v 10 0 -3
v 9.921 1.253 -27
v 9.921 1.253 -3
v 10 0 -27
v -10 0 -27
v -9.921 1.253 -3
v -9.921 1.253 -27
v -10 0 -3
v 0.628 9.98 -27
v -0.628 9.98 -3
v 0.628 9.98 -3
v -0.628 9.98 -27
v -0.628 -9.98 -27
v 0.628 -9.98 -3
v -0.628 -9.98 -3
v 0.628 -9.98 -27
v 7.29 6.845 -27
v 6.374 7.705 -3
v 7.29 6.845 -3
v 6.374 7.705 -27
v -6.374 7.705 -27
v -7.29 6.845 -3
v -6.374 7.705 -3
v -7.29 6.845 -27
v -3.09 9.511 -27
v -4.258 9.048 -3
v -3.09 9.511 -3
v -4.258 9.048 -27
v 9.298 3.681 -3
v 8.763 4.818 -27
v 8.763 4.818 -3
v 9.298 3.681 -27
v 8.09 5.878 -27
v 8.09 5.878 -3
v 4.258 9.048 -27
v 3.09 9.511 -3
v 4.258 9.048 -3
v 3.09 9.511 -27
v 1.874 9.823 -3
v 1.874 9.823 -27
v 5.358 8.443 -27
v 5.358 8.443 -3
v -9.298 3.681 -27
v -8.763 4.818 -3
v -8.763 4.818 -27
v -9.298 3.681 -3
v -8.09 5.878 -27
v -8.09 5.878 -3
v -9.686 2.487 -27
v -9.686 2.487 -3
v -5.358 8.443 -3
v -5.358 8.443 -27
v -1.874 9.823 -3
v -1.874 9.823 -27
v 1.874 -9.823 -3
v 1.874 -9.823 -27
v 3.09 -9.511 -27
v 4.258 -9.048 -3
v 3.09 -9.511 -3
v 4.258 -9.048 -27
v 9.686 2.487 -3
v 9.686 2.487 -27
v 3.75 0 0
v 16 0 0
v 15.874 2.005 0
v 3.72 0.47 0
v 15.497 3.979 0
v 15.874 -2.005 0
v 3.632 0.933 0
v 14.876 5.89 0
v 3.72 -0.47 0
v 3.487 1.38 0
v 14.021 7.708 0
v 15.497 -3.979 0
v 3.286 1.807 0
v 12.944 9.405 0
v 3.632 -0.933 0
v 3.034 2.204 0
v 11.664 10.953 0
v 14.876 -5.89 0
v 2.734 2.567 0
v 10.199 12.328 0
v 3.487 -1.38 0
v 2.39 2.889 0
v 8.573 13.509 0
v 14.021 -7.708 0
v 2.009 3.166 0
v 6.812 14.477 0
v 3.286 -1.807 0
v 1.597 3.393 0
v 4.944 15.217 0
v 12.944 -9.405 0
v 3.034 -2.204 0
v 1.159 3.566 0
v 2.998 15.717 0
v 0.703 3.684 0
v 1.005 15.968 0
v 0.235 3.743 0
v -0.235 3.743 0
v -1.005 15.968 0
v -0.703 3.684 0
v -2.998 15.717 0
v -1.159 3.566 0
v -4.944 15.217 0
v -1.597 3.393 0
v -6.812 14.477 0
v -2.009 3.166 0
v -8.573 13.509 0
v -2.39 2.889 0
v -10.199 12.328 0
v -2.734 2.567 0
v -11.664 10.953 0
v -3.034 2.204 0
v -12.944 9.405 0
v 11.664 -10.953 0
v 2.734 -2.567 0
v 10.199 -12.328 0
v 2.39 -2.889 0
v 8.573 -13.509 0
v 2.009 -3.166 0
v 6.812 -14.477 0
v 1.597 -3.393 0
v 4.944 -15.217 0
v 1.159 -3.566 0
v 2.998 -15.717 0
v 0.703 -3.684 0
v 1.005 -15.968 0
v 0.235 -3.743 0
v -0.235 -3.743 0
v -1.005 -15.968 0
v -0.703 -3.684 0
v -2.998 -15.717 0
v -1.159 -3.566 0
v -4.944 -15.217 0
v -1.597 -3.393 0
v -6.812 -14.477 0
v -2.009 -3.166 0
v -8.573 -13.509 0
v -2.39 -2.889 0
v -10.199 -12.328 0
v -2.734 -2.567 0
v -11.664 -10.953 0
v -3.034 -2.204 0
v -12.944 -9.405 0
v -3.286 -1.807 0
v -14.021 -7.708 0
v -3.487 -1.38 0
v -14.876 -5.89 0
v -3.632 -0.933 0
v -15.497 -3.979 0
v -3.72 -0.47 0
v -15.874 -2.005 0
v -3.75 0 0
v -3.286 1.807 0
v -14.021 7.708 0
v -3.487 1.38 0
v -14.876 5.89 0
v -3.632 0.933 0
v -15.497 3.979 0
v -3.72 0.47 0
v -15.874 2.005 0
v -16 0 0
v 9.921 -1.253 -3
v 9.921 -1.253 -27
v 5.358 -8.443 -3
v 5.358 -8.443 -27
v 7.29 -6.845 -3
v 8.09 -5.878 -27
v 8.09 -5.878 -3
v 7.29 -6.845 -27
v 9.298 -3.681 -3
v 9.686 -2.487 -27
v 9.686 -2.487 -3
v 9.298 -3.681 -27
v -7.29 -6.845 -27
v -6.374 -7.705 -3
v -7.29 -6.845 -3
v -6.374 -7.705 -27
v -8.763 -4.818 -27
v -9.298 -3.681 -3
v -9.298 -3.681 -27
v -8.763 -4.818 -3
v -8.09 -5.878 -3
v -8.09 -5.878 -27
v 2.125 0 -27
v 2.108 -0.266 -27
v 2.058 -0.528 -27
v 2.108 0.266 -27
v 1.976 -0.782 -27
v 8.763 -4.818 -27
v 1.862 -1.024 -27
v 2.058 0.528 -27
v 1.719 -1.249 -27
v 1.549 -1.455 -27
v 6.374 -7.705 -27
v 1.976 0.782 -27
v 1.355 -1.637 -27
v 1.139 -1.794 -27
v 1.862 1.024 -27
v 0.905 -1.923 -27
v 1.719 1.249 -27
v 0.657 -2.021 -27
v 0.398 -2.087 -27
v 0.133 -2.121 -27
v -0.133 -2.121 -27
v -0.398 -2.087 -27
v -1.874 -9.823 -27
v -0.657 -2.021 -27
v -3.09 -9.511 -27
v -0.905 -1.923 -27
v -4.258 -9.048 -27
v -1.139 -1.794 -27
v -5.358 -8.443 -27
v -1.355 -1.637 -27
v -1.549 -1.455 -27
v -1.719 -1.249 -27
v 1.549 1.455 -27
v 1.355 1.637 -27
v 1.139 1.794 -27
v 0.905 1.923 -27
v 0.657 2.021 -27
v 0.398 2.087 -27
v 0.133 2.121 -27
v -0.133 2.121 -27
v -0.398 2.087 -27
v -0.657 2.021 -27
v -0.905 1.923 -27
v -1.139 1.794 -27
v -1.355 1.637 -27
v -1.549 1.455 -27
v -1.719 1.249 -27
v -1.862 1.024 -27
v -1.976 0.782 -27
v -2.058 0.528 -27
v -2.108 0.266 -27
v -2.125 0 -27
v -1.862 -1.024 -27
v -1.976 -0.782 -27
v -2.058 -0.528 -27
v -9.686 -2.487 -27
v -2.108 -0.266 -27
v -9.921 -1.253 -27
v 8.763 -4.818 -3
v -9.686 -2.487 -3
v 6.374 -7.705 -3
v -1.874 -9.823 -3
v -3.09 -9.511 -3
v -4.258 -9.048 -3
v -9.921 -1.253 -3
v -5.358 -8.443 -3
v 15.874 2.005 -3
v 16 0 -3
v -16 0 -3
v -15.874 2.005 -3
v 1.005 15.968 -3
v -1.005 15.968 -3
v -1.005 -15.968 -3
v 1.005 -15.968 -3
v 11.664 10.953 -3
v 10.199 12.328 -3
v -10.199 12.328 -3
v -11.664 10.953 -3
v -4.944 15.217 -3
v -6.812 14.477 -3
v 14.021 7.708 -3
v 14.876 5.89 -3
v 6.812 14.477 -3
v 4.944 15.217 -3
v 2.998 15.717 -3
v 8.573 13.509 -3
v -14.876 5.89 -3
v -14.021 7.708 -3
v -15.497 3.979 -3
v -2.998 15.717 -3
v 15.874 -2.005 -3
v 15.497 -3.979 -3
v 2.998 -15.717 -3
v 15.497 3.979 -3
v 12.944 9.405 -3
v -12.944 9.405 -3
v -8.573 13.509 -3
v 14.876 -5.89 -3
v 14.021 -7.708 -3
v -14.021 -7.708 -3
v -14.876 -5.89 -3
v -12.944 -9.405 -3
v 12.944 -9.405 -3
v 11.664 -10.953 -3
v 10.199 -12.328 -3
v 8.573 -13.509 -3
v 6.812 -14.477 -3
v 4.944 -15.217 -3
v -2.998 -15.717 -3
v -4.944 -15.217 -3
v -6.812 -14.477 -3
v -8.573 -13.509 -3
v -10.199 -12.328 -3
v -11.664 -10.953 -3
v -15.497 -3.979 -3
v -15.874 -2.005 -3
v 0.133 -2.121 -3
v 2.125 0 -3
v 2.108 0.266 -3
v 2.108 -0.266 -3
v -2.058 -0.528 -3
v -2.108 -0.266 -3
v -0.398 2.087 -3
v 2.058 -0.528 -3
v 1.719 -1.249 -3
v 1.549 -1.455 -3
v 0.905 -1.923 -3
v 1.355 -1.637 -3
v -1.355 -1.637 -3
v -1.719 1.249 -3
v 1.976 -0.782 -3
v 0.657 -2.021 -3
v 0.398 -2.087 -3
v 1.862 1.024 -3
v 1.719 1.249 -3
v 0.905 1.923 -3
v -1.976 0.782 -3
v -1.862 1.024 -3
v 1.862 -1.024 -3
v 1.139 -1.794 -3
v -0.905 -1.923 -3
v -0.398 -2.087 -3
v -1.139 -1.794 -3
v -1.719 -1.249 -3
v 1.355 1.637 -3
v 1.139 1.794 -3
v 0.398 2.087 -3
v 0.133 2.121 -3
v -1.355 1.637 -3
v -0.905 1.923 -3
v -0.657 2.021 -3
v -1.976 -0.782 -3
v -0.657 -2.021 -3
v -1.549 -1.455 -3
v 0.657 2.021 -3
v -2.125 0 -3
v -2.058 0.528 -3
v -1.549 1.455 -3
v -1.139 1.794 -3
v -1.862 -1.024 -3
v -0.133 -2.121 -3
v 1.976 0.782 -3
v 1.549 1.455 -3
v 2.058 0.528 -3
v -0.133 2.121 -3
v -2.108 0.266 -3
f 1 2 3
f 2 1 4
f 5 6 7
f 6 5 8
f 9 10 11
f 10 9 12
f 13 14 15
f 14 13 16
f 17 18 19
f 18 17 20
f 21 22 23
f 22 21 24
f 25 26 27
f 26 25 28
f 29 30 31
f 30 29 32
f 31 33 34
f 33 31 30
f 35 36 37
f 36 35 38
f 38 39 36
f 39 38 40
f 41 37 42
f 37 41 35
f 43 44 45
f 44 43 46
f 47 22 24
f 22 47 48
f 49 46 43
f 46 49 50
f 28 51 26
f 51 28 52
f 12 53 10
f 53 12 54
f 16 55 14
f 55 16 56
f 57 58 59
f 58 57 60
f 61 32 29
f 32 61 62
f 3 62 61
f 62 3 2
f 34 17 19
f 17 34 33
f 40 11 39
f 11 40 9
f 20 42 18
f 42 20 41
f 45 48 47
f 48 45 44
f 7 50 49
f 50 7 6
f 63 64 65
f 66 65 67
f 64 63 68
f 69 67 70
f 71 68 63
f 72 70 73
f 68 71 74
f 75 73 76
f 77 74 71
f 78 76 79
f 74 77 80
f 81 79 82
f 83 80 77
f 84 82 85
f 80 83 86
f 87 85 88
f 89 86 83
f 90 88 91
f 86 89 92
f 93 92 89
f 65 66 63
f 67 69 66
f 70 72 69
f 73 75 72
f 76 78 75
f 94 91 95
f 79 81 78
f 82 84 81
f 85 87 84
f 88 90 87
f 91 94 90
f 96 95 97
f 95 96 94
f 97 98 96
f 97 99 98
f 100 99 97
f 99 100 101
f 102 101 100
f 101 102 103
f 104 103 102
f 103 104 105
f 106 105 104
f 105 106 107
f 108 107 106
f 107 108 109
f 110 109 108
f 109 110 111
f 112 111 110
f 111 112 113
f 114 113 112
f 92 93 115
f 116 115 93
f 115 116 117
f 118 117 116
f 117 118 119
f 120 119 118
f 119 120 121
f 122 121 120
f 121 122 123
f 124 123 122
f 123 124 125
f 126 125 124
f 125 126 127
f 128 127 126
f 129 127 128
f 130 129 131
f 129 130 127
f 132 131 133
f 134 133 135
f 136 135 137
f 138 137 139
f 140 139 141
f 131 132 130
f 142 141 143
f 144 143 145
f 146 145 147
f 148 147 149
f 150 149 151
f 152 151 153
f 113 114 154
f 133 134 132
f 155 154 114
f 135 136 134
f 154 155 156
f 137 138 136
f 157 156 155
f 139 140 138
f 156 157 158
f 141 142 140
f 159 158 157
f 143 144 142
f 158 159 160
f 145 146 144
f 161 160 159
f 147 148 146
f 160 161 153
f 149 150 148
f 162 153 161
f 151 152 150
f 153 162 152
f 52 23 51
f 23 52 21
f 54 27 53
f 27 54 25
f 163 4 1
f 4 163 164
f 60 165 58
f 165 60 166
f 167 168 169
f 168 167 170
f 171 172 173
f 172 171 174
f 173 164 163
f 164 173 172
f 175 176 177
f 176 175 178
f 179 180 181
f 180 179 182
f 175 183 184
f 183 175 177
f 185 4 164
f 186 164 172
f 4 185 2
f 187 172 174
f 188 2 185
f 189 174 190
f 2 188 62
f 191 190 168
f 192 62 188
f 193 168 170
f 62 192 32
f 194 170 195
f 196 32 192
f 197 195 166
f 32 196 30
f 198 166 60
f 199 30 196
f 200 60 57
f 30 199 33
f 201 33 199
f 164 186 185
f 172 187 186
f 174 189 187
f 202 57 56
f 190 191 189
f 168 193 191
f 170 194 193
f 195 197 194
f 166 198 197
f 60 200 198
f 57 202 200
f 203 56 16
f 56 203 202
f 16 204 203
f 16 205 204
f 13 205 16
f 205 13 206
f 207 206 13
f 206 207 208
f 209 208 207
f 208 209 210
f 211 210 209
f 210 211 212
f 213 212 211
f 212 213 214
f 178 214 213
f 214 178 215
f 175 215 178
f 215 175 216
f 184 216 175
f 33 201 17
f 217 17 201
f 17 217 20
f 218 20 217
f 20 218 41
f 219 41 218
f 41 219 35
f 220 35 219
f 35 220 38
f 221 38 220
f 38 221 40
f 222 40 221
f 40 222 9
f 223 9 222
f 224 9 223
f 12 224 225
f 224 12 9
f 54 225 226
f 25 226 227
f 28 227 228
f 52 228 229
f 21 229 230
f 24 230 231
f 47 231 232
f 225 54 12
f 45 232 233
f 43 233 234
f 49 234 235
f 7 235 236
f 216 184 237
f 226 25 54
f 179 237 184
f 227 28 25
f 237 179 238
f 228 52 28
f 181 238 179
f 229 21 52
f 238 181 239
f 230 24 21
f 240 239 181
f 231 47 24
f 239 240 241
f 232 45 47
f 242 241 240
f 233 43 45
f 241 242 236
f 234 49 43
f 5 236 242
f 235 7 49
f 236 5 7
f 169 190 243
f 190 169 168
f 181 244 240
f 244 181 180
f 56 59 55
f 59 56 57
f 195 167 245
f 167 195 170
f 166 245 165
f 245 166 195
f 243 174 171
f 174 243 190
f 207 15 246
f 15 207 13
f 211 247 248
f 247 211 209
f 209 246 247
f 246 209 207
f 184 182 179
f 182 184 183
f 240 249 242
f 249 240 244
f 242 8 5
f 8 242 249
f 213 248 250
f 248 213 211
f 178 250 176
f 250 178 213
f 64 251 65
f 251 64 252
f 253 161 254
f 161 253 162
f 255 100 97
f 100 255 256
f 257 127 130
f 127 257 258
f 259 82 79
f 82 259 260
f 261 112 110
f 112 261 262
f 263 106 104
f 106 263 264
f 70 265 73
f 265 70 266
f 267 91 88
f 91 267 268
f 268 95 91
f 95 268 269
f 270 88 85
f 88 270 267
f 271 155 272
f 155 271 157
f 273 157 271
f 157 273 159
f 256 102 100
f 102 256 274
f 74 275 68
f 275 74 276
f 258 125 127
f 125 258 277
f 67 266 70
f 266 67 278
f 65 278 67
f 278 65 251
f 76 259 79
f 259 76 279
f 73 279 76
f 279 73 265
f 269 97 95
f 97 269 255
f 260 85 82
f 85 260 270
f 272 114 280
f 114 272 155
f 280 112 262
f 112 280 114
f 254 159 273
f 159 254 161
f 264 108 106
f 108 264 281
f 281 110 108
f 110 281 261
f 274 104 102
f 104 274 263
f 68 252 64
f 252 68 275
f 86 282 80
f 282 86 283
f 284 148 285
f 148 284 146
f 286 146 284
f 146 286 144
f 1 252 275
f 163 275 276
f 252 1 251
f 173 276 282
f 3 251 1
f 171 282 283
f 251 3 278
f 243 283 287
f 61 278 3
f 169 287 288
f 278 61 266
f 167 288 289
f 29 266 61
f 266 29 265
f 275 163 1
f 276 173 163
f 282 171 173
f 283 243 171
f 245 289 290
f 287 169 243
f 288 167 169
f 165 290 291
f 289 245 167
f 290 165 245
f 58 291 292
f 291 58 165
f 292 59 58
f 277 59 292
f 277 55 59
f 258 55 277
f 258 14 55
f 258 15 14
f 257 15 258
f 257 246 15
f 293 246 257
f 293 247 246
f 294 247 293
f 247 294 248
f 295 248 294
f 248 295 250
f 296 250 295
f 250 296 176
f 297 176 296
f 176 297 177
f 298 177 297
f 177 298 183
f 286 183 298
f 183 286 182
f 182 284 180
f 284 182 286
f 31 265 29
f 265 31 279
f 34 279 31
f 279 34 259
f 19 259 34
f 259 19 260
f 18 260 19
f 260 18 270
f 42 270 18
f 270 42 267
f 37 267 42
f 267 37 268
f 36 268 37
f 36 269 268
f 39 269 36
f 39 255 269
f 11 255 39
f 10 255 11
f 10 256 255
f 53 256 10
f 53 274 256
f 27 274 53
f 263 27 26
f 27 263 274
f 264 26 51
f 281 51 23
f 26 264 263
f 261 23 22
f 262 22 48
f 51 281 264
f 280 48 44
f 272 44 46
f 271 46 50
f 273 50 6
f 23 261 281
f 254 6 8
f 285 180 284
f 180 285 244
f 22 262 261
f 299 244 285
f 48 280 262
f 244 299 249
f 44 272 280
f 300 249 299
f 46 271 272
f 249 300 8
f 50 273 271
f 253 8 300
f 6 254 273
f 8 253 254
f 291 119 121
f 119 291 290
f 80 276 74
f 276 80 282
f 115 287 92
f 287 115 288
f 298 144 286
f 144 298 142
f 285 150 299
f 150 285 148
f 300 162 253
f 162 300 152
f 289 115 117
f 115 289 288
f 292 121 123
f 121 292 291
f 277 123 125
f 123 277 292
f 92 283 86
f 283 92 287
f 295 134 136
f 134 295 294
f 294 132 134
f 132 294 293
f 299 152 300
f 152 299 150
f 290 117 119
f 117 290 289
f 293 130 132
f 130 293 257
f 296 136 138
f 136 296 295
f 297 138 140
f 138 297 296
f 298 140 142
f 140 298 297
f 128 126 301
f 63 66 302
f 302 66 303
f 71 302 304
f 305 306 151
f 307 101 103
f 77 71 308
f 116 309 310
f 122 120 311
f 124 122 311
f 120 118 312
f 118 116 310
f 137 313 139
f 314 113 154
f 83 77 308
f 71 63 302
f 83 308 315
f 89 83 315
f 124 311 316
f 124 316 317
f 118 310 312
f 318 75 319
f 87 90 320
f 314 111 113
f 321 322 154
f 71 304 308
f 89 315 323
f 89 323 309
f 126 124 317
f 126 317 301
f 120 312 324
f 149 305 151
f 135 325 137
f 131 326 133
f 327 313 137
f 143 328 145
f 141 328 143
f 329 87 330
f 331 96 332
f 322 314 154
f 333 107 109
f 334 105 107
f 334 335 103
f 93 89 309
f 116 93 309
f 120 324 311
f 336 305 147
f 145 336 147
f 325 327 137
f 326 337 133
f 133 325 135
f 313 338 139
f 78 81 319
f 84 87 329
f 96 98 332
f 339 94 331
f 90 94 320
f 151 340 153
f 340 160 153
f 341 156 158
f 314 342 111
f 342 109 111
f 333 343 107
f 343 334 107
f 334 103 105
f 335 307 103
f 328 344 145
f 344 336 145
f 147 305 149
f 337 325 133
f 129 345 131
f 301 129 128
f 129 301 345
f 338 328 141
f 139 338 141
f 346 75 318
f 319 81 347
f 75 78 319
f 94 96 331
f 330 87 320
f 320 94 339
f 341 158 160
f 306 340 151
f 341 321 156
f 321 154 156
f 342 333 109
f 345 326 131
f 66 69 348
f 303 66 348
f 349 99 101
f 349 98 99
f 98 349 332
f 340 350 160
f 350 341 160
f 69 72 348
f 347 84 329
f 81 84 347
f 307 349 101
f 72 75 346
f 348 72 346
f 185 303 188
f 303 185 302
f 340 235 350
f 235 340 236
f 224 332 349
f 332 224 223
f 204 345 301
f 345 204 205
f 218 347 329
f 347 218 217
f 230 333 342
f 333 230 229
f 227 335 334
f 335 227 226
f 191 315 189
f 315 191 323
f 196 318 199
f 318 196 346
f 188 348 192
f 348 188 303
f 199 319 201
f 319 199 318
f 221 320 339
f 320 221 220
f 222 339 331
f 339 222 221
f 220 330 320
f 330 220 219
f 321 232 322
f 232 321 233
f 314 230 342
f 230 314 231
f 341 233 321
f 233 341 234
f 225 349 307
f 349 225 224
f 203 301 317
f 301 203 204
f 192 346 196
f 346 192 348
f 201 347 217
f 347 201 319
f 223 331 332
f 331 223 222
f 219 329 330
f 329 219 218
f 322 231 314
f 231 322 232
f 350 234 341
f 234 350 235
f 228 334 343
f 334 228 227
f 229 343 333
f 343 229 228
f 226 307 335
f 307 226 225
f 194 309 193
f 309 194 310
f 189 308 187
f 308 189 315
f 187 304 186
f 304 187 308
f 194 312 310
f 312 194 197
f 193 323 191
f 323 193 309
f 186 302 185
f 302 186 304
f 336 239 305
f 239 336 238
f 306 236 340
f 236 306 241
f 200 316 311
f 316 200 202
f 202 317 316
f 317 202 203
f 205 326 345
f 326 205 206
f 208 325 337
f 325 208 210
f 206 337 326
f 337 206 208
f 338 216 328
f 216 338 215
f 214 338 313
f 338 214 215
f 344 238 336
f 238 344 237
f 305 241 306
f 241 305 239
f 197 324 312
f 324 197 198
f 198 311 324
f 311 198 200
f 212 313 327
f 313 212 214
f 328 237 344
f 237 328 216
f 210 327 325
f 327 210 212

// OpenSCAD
$fn = 50;


difference() {
	union() {
		translate(v = [0, 0, -27.0000000000]) {
			cylinder(h = 27, r = 10.0000000000);
		}
		translate(v = [0, 0, -3.0000000000]) {
			cylinder(h = 3, r = 16.0000000000);
		}
	}
	union() {
		translate(v = [0, 0, 0]) {
			rotate(a = [0, 0, 0]) {
				difference() {
					union() {
						#translate(v = [0, 0, -27.0000000000]) {
							cylinder(h = 27, r = 2.0000000000);
						}
						#translate(v = [0, 0, -3]) {
							cylinder(h = 3, r1 = 2.1250000000, r2 = 3.7500000000);
						}
						#translate(v = [0, 0, -27.0000000000]) {
							cylinder(h = 27, r = 2.1250000000);
						}
						#translate(v = [0, 0, -27.0000000000]) {
							cylinder(h = 27, r = 2.0000000000);
						}
					}
					union();
				}
			}
		}
	}
}
